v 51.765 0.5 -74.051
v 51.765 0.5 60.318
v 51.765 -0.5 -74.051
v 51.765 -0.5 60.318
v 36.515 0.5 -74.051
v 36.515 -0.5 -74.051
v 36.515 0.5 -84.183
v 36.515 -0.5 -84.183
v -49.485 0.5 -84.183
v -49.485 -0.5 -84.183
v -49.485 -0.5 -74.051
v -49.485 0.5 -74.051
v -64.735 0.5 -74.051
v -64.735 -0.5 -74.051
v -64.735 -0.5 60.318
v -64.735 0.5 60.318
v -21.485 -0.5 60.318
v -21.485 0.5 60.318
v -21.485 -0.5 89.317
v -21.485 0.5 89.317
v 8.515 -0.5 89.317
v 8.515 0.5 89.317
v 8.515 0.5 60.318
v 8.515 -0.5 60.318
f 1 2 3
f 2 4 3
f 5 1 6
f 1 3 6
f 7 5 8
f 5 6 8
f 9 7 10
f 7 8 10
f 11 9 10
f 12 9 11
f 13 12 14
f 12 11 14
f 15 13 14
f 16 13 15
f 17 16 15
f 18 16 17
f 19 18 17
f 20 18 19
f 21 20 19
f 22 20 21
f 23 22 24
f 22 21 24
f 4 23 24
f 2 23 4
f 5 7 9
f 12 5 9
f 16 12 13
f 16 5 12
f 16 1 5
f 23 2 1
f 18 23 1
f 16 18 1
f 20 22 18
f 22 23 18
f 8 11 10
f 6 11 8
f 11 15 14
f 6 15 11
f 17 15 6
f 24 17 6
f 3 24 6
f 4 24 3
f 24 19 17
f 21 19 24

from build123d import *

# Parameters (mm, degrees)
RESSALTO_EXTRUS_O1_DEPTH = 0.5


with BuildPart() as part:
    # Esboço1 → Ressalto-extrusão1 (new, symmetric)
    with BuildSketch(Plane(origin=(0, 0, 0), x_dir=(1, 0, 0), z_dir=(0, 1, 0))):
        Polygon((51.76515993, 74.050984143), (36.51515993, 74.050984143), (36.51515993, 84.183084139), (-6.48484007, 84.183084139), (-49.48484007, 84.183084139), (-49.48484007, 74.050984143), (-64.73484007, 74.050984143), (-64.73484007, 8.933084139), (-64.73484007, -60.318382682), (-21.48484007, -60.318382682), (-21.48484007, -69.817649271), (-21.48484007, -89.316915861), (-6.48484007, -89.316915861), (8.51515993, -89.316915861), (8.51515993, -69.817649271), (8.51515993, -60.318382682), (51.76515993, -60.318382682), (51.76515993, 8.933084139), align=None)
    extrude(amount=RESSALTO_EXTRUS_O1_DEPTH, both=True)


solid = part.part
